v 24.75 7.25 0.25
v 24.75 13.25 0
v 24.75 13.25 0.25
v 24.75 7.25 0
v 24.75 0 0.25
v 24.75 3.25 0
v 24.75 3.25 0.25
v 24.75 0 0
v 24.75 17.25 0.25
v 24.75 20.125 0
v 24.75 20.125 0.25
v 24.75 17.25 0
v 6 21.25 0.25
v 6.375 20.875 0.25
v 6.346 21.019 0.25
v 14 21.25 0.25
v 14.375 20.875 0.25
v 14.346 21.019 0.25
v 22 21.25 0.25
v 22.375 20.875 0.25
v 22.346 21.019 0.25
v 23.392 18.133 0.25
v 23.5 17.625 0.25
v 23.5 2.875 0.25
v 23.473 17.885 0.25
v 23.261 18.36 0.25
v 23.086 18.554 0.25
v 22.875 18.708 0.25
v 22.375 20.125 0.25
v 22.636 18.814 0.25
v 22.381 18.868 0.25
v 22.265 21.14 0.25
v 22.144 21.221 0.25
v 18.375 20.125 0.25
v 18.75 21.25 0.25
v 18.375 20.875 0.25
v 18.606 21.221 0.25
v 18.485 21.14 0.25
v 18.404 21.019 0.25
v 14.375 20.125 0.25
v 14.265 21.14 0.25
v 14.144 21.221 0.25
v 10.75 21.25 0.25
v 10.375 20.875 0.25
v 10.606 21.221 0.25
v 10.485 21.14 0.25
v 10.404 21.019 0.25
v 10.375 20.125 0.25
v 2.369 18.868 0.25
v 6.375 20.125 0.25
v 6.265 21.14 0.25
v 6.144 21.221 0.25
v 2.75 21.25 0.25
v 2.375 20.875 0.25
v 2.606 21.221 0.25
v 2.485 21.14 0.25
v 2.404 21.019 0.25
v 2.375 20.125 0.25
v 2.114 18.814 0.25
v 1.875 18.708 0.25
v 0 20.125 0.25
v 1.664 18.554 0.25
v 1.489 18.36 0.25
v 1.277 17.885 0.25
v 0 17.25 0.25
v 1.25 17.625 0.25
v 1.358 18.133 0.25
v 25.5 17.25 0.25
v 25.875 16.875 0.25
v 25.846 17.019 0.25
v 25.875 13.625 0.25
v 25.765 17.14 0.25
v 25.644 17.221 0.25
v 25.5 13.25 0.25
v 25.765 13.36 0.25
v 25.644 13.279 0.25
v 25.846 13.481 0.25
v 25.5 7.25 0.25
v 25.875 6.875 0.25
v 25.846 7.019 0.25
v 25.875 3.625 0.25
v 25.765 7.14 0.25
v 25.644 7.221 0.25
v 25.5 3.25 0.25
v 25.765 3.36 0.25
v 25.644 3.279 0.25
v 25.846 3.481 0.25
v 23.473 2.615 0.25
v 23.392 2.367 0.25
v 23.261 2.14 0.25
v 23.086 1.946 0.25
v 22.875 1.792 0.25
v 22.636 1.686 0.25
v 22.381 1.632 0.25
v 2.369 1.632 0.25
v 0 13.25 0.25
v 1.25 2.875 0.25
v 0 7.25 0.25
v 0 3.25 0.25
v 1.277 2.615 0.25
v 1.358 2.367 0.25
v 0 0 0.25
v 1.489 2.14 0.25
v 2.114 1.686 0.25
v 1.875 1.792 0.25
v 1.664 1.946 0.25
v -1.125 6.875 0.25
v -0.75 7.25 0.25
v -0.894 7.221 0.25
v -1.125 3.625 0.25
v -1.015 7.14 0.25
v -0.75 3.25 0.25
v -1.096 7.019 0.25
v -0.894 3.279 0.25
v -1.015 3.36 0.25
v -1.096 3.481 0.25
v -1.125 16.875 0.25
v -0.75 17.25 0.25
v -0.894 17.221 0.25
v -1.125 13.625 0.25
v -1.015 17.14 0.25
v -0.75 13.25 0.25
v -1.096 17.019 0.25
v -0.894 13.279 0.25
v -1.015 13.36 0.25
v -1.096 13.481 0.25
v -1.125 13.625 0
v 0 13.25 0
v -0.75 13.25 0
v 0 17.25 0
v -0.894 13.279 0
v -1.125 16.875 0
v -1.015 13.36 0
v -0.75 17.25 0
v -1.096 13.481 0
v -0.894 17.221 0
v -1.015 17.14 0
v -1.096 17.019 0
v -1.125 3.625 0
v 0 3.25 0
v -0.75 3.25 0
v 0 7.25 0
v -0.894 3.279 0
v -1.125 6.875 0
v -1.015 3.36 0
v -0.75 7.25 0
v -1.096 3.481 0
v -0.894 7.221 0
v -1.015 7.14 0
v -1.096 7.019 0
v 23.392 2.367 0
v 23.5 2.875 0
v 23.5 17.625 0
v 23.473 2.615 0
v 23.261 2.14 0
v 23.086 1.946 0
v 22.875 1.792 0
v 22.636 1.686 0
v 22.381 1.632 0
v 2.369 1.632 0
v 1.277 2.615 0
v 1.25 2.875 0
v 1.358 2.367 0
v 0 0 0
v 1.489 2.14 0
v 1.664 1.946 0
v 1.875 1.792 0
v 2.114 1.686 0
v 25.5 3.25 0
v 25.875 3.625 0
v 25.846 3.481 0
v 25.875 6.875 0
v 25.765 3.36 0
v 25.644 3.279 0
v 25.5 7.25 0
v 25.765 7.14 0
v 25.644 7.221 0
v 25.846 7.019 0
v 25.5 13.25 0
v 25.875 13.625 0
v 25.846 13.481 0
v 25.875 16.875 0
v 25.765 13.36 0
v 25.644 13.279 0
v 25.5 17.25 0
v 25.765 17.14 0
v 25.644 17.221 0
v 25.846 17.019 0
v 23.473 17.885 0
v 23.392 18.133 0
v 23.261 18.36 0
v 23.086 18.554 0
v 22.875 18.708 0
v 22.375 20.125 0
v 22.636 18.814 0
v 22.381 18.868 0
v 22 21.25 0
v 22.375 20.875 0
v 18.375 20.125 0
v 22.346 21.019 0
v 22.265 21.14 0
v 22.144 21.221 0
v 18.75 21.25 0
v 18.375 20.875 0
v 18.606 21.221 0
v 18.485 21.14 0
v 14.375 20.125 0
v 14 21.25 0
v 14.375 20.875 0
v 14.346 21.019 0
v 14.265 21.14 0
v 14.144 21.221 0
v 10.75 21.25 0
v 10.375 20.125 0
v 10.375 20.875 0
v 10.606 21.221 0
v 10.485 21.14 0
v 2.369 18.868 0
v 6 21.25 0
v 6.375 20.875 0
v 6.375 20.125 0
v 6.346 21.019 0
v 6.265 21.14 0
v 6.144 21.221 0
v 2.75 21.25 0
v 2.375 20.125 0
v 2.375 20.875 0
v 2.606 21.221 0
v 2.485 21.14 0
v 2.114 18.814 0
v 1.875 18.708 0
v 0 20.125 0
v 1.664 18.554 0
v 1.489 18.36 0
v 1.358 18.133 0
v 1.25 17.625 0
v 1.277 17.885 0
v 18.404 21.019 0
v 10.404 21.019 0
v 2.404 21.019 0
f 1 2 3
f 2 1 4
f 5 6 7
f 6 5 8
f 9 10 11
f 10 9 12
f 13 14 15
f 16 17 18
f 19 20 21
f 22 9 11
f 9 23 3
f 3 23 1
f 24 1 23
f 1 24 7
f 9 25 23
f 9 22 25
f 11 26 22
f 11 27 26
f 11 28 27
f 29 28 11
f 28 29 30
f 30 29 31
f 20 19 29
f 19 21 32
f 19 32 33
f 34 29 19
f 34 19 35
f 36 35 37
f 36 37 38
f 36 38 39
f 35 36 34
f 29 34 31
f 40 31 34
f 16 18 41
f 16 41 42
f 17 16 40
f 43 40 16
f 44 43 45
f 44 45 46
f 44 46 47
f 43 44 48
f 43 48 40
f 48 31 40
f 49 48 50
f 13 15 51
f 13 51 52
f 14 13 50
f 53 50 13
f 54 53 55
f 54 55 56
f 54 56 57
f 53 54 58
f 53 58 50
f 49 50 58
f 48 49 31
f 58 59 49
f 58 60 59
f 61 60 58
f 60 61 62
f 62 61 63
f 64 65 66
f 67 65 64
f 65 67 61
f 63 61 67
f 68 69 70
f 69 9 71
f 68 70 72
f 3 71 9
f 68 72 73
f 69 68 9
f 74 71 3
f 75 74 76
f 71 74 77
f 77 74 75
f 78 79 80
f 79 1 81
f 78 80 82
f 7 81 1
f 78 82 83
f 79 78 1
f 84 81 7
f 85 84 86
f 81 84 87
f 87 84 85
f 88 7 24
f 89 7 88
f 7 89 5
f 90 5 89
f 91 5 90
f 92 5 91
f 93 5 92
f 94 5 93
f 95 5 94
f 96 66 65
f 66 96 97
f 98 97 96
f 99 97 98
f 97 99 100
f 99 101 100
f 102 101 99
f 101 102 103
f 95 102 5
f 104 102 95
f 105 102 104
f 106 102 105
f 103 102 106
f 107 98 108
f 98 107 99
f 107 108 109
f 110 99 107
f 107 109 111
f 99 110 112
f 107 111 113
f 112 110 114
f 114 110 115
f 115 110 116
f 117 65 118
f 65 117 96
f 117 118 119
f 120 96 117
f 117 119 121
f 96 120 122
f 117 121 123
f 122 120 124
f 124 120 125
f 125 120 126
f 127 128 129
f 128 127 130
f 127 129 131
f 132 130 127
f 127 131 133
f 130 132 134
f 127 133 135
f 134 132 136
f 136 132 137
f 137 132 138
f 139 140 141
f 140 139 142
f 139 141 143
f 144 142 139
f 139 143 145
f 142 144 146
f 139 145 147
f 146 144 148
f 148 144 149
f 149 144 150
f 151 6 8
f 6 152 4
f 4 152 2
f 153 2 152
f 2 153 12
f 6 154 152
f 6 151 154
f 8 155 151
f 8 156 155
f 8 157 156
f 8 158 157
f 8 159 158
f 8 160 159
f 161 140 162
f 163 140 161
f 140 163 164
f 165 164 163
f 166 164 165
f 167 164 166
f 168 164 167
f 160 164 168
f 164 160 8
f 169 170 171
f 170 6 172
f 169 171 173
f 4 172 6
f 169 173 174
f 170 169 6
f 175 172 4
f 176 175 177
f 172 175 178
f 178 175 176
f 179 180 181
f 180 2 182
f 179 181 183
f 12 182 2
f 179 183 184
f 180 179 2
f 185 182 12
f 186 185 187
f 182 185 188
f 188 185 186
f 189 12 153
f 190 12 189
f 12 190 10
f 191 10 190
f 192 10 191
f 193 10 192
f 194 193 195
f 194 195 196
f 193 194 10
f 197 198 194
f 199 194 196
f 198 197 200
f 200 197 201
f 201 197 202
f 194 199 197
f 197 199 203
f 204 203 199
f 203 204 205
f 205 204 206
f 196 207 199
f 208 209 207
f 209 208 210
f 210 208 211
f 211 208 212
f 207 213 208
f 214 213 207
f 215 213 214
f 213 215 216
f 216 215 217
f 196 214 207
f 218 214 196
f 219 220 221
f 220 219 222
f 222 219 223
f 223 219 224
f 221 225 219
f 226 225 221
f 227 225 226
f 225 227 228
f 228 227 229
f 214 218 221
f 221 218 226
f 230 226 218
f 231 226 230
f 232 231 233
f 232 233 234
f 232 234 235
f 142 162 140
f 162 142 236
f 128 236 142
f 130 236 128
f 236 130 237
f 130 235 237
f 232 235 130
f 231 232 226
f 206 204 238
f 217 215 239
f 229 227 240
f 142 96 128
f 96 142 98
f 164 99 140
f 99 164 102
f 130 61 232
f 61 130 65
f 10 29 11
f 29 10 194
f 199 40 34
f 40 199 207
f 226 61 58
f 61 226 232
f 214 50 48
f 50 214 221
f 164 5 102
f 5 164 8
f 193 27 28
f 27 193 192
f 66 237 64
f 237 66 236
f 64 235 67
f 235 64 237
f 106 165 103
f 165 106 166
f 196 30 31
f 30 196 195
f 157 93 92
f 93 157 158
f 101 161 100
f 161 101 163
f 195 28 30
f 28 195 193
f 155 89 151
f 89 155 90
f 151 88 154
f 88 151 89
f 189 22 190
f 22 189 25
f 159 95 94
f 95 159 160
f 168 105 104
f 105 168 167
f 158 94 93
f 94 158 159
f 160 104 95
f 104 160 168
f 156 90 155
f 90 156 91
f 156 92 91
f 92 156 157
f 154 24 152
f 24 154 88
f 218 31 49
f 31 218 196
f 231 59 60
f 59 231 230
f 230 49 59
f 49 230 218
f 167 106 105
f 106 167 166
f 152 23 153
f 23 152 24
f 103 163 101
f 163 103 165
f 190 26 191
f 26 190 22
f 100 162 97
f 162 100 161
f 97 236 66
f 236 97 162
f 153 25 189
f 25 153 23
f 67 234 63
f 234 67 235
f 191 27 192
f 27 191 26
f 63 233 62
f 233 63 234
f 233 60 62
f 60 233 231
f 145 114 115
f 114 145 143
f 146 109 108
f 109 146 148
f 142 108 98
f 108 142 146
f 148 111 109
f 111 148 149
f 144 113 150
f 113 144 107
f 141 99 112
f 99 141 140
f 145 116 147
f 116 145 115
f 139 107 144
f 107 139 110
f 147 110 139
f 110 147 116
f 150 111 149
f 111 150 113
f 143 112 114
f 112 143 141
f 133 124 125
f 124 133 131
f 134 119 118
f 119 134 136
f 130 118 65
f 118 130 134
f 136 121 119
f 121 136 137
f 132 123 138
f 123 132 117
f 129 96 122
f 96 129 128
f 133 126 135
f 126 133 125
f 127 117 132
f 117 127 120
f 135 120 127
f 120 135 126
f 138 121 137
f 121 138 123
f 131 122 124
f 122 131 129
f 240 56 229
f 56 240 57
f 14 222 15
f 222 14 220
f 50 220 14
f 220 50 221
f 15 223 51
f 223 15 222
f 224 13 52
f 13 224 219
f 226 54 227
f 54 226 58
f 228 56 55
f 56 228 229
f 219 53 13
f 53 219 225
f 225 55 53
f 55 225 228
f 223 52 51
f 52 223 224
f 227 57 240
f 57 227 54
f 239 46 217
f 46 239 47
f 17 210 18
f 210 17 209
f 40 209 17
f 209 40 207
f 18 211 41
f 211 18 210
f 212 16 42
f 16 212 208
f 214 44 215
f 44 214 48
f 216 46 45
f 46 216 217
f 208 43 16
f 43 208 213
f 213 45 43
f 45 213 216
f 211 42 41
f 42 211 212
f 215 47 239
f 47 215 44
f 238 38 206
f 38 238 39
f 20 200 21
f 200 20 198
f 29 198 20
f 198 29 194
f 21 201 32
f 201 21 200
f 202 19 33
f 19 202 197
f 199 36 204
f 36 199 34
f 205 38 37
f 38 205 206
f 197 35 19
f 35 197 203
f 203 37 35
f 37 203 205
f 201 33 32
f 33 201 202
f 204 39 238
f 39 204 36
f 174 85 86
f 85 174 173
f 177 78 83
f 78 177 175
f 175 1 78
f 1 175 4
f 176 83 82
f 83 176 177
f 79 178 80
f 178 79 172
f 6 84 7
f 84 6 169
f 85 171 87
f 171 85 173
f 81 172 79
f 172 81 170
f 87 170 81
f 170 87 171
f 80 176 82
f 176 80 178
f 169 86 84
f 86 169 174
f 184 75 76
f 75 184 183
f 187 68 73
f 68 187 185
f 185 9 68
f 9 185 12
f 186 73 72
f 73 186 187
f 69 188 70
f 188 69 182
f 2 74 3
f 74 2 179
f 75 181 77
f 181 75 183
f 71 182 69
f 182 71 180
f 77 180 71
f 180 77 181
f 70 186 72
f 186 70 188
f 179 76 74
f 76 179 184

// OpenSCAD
// file: roundedcube.scad
// FROM: https://gist.github.com/groovenectar/92174cb1c98c1089347e
// More information: https://danielupshaw.com/openscad-rounded-corners/

// Set to 0.01 for higher definition curves (renders slower)
$fs = 0.15;

module roundedcube(size = [1, 1, 1], center = false, radius = 0.5, apply_to = "all") {
	// If single value, convert to [x, y, z] vector
	size = (size[0] == undef) ? [size, size, size] : size;

	translate_min = radius;
	translate_xmax = size[0] - radius;
	translate_ymax = size[1] - radius;
	translate_zmax = size[2] - radius;

	diameter = radius * 2;

	obj_translate = (center == false) ?
		[0, 0, 0] : [
			-(size[0] / 2),
			-(size[1] / 2),
			-(size[2] / 2)
		];

	translate(v = obj_translate) {
		hull() {
			for (translate_x = [translate_min, translate_xmax]) {
				x_at = (translate_x == translate_min) ? "min" : "max";
				for (translate_y = [translate_min, translate_ymax]) {
					y_at = (translate_y == translate_min) ? "min" : "max";
					for (translate_z = [translate_min, translate_zmax]) {
						z_at = (translate_z == translate_min) ? "min" : "max";

						translate(v = [translate_x, translate_y, translate_z])
						if (
							(apply_to == "all") ||
							(apply_to == "xmin" && x_at == "min") || (apply_to == "xmax" && x_at == "max") ||
							(apply_to == "ymin" && y_at == "min") || (apply_to == "ymax" && y_at == "max") ||
							(apply_to == "zmin" && z_at == "min") || (apply_to == "zmax" && z_at == "max")
						) {
							sphere(r = radius);
						} else {
							rotate = 
								(apply_to == "xmin" || apply_to == "xmax" || apply_to == "x") ? [0, 90, 0] : (
								(apply_to == "ymin" || apply_to == "ymax" || apply_to == "y") ? [90, 90, 0] :
								[0, 0, 0]
							);
							rotate(a = rotate)
							cylinder(h = diameter, r = radius, center = true);
						}
					}
				}
			}
		}
	}
}
// main file
// from: https://danielupshaw.com/openscad-rounded-corners/
use <roundedcube.scad>;

thickness = 0.25;
union() {
    difference() {
        cube([24.75, 20.125, thickness]);
        translate([1.25, 1.625, -0.1]) {
            roundedcube(size = [22.25, 17.25, 1], center = false, radius = 1.25, apply_to = "zmin");
        }
    }
    // left side tabs, bottom to top
    translate([0, 3.25, 0]) { tab(); }
    translate([0, 13.25, 0]) { tab(); }
    // top side tabs, left to right
    translate([2.375, 20.125, 0]) { rotate([0, 0, -90]) { tab(); }}
    translate([10.375, 20.125, 0]) { rotate([0, 0, -90]) { tab(); }}
    translate([18.375, 20.125, 0]) { rotate([0, 0, -90]) { tab(); }}
    // right side tabs, botton to top
    translate([24.75, 3.25, thickness]) { rotate([0, 180, 0]) { tab(); }}
    translate([24.75, 13.25, thickness]) { rotate([0, 180, 0]) { tab(); }}
}

module tab() {
    twidth = 4;
    tdepth = 1.125;
    tradius = 1.125/3.0;
    translate([0, 0, -0.5]) {
        intersection() {
            translate([-1 * tdepth, 0, 0]) {
                roundedcube(size = [tdepth * 2, twidth, 1], radius = tradius, apply_to = "zmin");
            }
            translate([-1 * tdepth, 0, 0.5]) {
                cube([tdepth, twidth, thickness]);
            }
        }
    }
}
